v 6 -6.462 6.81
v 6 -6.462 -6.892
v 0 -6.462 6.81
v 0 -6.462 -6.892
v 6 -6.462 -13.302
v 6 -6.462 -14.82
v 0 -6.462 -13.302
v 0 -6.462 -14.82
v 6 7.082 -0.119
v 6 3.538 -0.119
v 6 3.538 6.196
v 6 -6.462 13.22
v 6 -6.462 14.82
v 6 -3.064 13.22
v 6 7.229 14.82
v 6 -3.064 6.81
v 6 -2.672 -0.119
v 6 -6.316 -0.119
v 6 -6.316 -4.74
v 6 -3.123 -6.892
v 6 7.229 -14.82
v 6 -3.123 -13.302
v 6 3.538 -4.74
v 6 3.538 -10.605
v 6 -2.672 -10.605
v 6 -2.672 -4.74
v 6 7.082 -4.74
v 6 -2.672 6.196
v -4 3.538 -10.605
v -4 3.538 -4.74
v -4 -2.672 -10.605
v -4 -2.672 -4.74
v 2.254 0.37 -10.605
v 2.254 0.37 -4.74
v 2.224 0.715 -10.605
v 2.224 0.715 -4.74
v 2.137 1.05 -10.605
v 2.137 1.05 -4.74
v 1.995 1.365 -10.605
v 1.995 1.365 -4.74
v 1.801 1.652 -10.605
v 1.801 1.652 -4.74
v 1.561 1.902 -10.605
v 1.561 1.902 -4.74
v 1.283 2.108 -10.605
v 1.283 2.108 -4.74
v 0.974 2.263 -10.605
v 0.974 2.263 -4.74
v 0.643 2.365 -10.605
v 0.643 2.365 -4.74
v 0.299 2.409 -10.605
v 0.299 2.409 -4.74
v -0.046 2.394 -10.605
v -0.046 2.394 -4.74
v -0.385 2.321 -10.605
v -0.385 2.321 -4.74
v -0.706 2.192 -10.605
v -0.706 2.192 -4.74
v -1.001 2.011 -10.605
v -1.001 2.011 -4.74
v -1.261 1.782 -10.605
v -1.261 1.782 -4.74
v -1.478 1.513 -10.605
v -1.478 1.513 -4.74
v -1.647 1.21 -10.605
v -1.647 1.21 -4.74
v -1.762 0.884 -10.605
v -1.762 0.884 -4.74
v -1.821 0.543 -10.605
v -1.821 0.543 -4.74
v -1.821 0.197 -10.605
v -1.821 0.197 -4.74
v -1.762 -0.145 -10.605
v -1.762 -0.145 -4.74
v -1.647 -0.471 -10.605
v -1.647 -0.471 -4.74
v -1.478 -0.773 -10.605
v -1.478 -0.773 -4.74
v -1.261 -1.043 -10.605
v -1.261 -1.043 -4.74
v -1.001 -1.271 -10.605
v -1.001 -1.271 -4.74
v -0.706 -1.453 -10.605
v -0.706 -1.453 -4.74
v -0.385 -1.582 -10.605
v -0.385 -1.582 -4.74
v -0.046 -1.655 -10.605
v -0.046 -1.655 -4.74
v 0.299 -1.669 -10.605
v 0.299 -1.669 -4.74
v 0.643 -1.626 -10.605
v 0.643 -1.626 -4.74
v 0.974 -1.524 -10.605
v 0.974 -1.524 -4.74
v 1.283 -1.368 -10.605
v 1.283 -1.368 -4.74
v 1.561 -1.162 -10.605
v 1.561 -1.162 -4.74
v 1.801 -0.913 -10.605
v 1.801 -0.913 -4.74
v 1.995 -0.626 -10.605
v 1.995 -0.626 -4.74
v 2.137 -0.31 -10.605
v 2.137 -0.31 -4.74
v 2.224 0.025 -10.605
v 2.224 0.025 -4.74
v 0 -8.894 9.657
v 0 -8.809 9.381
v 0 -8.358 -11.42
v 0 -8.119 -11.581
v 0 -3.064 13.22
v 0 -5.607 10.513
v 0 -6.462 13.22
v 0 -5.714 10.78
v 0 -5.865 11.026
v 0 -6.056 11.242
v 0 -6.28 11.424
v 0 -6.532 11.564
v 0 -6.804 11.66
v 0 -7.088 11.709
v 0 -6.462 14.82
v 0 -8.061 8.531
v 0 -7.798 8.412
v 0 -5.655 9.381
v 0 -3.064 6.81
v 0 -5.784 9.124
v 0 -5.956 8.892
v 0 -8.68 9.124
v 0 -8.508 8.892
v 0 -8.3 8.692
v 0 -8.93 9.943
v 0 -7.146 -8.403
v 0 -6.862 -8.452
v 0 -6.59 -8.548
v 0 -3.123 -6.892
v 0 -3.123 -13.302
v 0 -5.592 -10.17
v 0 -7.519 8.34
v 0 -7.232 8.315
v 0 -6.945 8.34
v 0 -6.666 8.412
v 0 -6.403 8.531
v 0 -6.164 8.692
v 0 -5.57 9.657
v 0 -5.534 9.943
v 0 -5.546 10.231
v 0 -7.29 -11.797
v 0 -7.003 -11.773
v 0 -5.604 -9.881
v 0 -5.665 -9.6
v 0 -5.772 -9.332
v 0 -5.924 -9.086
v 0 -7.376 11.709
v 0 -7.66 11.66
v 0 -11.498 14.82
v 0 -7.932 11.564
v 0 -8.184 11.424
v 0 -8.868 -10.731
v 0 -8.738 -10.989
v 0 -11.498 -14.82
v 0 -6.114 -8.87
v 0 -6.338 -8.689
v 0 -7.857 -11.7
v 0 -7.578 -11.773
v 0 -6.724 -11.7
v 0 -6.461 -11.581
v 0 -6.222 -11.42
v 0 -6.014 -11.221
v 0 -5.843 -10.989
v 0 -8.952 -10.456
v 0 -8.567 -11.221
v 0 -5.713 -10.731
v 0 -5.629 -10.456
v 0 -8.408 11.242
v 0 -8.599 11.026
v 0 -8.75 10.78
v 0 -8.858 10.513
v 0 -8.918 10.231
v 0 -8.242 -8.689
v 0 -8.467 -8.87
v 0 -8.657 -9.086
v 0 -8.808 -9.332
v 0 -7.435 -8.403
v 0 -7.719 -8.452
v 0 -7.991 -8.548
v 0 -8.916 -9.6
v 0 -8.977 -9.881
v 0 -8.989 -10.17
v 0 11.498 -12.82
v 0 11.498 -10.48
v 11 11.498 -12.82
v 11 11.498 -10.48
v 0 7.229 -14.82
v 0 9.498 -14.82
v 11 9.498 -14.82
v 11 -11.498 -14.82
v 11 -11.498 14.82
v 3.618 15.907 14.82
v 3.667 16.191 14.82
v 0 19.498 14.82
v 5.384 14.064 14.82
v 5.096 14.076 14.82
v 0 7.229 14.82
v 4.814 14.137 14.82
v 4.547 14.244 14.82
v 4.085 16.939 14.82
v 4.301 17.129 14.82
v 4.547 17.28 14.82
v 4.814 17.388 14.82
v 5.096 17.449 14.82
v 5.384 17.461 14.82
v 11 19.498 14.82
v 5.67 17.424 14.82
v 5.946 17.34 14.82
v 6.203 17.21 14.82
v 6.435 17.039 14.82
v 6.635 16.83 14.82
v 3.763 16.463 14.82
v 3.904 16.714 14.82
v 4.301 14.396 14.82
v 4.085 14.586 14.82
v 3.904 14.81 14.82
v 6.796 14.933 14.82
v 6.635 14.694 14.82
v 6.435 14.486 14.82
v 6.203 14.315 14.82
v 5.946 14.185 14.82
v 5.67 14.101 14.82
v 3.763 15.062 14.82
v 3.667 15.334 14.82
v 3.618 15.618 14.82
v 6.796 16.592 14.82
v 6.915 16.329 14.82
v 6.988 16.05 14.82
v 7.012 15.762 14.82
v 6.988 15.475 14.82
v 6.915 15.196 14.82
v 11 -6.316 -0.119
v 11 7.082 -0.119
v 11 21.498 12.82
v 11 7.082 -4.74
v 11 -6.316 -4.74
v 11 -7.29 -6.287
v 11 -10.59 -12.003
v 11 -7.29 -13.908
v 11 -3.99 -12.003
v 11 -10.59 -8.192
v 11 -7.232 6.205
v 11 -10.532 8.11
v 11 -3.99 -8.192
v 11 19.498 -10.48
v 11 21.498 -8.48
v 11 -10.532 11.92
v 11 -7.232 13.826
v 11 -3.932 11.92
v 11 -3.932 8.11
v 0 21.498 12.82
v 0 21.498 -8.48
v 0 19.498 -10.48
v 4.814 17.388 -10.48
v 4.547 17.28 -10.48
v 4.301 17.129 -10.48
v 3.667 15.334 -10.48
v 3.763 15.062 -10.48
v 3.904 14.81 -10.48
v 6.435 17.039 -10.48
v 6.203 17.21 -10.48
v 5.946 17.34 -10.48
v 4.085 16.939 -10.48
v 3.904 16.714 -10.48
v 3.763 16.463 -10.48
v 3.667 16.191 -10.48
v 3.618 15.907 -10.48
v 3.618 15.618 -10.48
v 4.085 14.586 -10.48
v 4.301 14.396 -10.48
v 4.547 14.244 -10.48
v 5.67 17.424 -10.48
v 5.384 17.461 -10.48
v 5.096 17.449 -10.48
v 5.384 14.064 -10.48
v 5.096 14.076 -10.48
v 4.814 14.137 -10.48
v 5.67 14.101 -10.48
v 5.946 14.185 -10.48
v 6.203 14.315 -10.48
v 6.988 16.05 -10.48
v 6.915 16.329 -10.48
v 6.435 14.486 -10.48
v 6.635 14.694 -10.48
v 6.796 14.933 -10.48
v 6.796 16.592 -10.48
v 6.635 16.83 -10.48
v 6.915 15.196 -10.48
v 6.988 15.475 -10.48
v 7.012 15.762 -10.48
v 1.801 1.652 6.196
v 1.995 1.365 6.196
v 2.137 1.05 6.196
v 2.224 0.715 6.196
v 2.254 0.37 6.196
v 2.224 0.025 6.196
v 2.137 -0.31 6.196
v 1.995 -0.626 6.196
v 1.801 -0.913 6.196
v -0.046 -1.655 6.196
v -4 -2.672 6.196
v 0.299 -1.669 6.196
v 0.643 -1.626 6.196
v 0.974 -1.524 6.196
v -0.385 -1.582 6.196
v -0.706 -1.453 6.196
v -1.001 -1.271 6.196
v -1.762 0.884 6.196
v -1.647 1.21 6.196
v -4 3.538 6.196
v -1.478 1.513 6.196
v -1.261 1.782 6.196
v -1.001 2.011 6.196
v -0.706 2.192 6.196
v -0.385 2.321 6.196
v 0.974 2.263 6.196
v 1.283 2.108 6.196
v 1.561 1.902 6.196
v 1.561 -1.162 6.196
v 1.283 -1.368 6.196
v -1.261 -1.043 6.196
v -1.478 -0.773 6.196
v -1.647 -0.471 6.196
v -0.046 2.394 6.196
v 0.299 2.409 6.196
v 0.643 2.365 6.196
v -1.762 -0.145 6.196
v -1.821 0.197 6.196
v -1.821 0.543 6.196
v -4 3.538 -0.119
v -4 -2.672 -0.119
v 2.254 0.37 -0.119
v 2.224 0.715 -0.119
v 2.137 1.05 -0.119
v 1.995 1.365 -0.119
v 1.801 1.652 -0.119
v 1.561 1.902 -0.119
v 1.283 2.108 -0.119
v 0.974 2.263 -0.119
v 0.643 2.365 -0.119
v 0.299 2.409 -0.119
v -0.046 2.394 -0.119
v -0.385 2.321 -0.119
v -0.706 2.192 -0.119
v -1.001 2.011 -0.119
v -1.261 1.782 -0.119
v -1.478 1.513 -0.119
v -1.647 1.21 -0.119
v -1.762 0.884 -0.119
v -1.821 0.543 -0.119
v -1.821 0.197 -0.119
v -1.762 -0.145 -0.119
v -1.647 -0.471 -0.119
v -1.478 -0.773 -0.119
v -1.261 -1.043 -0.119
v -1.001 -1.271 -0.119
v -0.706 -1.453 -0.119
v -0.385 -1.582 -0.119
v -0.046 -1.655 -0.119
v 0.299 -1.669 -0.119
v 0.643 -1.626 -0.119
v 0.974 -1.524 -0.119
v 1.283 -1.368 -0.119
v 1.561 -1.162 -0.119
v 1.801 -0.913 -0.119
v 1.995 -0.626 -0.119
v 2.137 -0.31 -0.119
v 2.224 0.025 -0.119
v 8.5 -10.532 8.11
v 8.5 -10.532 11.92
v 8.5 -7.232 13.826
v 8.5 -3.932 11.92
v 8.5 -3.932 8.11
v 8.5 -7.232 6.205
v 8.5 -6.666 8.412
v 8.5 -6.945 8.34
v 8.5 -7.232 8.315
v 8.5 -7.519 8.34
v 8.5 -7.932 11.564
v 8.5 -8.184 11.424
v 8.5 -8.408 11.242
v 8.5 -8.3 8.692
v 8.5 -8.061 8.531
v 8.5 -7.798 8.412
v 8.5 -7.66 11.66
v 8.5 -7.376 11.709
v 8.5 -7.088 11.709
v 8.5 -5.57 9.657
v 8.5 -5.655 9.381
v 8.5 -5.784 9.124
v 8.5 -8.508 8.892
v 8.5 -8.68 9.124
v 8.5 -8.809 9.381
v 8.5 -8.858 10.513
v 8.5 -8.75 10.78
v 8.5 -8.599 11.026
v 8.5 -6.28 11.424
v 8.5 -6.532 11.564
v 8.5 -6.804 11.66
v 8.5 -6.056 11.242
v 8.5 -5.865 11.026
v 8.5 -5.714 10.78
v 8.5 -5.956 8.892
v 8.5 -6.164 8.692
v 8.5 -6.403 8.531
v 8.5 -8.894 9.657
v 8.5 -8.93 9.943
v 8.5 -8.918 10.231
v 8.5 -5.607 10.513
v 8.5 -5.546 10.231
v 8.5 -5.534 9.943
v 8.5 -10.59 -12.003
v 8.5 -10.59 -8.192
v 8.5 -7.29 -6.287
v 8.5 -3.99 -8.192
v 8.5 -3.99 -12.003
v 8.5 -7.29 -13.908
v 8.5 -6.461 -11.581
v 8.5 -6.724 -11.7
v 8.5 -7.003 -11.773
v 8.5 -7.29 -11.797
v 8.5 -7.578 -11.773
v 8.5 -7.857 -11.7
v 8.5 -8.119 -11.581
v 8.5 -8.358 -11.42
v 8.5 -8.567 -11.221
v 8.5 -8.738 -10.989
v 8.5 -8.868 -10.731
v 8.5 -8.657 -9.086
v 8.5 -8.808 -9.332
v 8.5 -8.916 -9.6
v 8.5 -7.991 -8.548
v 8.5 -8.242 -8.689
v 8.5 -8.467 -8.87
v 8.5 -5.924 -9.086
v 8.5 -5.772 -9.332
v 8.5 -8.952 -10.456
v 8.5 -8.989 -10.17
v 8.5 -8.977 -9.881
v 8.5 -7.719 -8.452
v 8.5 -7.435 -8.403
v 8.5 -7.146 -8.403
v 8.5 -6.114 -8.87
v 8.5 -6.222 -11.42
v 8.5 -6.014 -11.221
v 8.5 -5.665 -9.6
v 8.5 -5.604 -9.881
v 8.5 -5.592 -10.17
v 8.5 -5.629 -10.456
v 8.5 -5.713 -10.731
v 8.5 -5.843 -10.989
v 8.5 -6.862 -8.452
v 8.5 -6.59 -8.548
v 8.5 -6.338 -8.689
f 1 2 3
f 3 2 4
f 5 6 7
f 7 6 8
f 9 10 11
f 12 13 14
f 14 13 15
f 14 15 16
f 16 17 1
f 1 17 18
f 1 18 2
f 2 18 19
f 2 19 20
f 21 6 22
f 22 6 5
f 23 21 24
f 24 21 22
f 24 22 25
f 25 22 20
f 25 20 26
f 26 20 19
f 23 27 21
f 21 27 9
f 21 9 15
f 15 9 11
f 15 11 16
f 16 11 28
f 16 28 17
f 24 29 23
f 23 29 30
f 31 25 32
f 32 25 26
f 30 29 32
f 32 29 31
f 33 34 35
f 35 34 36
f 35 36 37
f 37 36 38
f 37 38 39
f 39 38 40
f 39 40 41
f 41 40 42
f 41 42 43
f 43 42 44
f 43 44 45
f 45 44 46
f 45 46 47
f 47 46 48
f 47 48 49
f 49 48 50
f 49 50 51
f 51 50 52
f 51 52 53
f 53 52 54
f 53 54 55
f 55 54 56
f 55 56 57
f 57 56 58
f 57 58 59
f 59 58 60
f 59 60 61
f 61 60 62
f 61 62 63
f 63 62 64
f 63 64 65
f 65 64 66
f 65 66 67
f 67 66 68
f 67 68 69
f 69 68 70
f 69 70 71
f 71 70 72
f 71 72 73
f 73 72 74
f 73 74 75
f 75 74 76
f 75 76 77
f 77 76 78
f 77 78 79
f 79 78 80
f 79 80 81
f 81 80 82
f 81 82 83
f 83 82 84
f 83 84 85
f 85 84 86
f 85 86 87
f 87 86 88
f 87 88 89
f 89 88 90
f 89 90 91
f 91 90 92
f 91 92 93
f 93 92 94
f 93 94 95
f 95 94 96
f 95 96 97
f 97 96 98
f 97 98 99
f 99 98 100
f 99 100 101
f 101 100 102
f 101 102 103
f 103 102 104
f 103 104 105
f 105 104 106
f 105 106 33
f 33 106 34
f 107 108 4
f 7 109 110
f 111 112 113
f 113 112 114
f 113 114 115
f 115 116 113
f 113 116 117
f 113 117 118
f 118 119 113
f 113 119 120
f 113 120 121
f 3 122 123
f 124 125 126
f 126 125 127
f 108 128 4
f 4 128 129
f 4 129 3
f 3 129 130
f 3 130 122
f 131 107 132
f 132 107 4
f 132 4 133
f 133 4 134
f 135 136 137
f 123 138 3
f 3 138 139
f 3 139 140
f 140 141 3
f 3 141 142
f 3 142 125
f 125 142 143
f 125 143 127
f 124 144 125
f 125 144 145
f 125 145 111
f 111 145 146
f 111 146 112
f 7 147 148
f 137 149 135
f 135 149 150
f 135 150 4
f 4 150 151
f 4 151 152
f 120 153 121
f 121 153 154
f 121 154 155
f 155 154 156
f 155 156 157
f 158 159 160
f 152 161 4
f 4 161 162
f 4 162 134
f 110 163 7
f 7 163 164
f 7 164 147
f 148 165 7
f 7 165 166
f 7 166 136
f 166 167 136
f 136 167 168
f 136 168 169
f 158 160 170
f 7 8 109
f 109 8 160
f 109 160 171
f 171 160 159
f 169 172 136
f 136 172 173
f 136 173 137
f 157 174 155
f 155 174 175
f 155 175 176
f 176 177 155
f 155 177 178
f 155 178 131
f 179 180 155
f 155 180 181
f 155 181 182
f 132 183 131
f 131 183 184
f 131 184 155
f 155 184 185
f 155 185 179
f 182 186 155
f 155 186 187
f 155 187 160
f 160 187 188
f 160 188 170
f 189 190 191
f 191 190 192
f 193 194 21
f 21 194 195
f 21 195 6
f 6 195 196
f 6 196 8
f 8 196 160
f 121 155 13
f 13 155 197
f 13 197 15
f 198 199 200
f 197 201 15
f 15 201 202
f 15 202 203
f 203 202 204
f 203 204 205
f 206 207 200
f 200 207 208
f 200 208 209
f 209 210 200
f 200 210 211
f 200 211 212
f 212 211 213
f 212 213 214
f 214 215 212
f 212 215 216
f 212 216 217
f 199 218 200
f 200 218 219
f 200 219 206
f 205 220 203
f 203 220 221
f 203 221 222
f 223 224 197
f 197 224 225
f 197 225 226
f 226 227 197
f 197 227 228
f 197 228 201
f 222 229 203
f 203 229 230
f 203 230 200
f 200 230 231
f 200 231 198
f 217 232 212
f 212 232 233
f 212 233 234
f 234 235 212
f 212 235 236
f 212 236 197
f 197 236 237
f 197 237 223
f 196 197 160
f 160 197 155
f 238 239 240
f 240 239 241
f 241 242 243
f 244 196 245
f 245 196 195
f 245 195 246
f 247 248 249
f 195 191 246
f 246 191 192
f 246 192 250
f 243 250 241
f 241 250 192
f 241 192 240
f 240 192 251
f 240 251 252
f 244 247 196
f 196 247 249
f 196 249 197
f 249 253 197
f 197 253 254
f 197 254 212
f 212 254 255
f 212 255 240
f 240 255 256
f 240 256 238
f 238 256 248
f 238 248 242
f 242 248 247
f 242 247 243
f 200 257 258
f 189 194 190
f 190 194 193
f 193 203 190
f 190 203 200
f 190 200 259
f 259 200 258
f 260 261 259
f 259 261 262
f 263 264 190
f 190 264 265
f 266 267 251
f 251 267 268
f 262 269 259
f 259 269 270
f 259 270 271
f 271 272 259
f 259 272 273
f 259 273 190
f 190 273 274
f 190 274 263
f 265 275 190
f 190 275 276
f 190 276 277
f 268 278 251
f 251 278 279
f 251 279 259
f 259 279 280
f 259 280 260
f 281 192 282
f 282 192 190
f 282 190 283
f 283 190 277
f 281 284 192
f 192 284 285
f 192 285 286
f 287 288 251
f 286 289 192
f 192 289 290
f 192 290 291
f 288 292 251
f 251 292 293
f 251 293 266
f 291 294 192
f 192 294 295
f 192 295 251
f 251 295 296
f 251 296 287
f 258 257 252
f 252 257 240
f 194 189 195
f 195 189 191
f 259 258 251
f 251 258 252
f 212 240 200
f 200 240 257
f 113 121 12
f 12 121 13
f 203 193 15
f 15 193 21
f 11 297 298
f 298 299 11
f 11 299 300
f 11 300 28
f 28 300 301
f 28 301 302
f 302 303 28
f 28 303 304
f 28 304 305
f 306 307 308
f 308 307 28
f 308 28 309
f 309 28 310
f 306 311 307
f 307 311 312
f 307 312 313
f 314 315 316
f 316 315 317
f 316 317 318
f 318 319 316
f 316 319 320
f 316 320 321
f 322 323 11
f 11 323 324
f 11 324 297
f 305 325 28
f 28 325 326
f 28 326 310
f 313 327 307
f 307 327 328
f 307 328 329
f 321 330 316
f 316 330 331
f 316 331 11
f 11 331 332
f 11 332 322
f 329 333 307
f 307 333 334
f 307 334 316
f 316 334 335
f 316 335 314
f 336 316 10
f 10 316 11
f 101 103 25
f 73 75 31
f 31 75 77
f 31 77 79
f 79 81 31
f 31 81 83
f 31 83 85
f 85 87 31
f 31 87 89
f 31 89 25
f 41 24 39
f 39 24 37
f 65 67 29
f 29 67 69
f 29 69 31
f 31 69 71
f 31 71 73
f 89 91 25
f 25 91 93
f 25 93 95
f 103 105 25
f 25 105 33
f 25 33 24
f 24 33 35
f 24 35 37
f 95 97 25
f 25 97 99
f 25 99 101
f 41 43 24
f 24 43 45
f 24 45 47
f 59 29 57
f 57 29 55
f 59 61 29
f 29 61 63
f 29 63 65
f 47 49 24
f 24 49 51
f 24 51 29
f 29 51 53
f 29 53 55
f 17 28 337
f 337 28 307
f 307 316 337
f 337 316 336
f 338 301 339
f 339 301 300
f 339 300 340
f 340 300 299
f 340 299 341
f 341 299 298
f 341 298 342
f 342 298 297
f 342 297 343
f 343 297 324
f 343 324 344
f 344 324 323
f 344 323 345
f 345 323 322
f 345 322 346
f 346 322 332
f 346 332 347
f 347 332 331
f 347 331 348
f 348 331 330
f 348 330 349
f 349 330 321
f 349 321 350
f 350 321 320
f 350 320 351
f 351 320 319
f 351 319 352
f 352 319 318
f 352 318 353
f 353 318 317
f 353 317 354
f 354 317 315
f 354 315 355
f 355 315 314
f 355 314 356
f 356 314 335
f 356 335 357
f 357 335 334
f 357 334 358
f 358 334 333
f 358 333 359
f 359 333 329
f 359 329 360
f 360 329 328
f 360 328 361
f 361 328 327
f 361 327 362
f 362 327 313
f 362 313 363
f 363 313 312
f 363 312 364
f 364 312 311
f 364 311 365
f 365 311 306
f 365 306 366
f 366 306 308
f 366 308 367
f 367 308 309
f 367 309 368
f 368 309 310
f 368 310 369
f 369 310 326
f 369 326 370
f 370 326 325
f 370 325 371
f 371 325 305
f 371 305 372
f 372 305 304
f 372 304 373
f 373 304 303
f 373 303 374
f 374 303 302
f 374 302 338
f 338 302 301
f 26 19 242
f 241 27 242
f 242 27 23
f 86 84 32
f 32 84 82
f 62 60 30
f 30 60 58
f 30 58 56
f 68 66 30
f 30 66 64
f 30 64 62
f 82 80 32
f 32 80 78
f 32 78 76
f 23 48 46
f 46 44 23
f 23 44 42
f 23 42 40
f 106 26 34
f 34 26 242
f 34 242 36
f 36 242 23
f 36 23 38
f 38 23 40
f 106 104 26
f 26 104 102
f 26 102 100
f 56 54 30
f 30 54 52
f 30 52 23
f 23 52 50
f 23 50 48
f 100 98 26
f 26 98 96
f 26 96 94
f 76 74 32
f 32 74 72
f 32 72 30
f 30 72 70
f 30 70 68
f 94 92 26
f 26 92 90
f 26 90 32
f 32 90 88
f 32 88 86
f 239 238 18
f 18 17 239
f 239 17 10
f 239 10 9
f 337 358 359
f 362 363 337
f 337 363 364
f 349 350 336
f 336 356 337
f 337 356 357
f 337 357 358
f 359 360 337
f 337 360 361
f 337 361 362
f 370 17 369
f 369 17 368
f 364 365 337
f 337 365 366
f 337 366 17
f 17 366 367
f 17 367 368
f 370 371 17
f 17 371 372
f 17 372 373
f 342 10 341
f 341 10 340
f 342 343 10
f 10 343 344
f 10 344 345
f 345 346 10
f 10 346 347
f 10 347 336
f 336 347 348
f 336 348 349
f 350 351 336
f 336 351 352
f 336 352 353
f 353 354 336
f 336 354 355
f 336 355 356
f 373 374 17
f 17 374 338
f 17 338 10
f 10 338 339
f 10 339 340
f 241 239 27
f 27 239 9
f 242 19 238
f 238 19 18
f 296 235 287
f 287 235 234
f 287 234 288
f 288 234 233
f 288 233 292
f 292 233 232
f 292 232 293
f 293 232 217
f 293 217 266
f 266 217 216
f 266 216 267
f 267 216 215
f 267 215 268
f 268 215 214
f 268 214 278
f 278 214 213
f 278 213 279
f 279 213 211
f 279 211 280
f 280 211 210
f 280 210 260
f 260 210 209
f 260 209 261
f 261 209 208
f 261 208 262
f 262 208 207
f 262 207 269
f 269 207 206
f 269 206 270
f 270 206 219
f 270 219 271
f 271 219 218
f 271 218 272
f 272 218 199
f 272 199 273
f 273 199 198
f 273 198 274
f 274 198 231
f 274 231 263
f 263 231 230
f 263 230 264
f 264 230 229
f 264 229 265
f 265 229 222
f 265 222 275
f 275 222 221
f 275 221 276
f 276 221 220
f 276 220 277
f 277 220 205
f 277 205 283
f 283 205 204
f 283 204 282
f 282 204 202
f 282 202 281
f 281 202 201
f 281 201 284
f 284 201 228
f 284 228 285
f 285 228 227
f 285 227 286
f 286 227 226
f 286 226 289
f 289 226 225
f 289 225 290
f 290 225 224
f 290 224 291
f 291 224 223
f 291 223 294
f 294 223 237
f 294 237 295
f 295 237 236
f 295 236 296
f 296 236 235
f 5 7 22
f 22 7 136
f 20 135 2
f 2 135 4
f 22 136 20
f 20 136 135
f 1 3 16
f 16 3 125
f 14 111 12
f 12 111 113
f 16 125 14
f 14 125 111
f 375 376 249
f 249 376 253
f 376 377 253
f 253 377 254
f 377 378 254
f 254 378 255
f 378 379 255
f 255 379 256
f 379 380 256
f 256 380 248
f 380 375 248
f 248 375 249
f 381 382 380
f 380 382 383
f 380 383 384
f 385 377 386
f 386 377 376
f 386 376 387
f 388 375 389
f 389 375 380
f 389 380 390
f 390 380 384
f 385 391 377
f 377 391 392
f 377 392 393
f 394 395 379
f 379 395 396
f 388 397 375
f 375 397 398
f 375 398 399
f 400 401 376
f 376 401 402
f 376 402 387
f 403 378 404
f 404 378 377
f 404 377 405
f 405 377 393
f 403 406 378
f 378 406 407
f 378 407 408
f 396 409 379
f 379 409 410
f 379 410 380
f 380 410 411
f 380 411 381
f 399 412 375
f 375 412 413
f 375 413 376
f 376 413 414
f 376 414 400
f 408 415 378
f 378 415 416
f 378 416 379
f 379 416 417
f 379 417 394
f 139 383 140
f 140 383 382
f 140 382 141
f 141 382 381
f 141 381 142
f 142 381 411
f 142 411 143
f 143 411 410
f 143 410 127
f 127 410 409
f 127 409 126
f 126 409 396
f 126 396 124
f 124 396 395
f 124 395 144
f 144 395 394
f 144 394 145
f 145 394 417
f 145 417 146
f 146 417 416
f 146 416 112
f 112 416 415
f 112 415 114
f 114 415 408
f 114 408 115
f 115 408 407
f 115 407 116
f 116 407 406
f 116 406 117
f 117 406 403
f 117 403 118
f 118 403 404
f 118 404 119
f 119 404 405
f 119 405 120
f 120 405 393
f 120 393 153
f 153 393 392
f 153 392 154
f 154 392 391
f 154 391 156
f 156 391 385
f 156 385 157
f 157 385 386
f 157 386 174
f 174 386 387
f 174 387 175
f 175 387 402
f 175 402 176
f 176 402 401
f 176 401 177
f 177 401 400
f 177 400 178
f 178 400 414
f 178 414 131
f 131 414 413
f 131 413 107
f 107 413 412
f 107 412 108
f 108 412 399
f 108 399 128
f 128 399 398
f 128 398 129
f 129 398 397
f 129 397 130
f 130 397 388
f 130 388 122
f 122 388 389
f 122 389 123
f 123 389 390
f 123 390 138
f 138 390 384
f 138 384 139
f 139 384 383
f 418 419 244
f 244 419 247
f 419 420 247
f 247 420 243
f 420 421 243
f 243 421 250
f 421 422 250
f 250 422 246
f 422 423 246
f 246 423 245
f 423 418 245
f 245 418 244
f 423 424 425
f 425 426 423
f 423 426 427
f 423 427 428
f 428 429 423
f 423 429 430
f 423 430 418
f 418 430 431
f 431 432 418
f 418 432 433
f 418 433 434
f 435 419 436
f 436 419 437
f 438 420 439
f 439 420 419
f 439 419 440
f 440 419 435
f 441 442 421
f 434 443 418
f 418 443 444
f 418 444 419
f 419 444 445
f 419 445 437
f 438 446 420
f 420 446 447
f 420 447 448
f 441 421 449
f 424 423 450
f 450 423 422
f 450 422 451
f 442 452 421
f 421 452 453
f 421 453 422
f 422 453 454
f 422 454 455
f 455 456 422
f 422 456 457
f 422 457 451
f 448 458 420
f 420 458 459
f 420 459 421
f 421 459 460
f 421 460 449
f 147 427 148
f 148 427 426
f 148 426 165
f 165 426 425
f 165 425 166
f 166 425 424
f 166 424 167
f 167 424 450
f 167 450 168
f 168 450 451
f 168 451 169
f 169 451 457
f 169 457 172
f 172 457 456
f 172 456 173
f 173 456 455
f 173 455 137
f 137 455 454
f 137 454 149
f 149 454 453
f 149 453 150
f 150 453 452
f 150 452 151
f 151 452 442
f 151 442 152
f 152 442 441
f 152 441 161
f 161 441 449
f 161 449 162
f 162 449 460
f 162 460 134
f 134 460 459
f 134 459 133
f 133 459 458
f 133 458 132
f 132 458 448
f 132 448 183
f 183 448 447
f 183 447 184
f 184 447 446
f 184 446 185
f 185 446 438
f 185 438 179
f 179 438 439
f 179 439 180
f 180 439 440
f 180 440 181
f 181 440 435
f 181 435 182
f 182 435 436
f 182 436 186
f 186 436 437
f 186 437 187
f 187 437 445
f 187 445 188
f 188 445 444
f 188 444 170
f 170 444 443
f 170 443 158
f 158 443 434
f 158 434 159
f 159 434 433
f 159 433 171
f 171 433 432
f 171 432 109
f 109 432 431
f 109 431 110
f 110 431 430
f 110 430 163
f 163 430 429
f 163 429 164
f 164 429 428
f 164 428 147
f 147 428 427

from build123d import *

# Parameters (mm, degrees)
SKETCH1_W           = 29.64084851
SKETCH1_H           = 22.995210284
BOSS_EXTRUDE1_DEPTH = 11
SKETCH2_W           = 11
SKETCH2_H           = 25.30011898
BOSS_EXTRUDE2_DEPTH = 10
CHAMFER1_SIZE       = 2
SKETCH3_W           = 31.444464136
SKETCH3_H           = 13.690550156
CUT_EXTRUDE2_DEPTH  = 6
SKETCH4_W           = 16.801230495
SKETCH4_H           = 6.210132239
BOSS_EXTRUDE3_DEPTH = 10
SKETCH5_R           = 2.040999549
CUT_EXTRUDE3_DEPTH  = 22.016469246
SKETCH6_W           = 4.621469737
SKETCH6_H           = 13.3986797
CUT_EXTRUDE4_DEPTH  = 16
SKETCH7_R           = 1.7
CUT_EXTRUDE5_DEPTH  = 27
SKETCH21_W          = 6.4100694
SKETCH21_H          = 8.3354859
BOSS_EXTRUDE4_DEPTH = 11
SKETCH20_W          = 6.410069378
SKETCH20_H          = 8.335485858
BOSS_EXTRUDE5_DEPTH = 11
CUT_EXTRUDE6_DEPTH  = 2.5
SKETCH19_R          = 1.7
CUT_EXTRUDE7_DEPTH  = 16
CUT_EXTRUDE8_DEPTH  = 2.5
SKETCH18_R          = 1.7
CUT_EXTRUDE9_DEPTH  = 16


with BuildPart() as part:
    # Sketch1 → Boss-Extrude1 (new body)
    with BuildSketch(Plane(origin=(0, 0, 0), x_dir=(0, 0, -1), z_dir=(1, 0, 0))):
        Rectangle(SKETCH1_W, SKETCH1_H)
    extrude(amount=BOSS_EXTRUDE1_DEPTH)

    # Sketch2 → Boss-Extrude2 (add)
    with BuildSketch(Plane(origin=(0, 11.497605142, 0), x_dir=(1, 0, 0), z_dir=(0, 1, 0))):
        with Locations((5.5, -2.170364765)):
            Rectangle(SKETCH2_W, SKETCH2_H)
    extrude(amount=BOSS_EXTRUDE2_DEPTH)

    # Chamfer1
    chamfer1_edges = [part.edges().sort_by_distance(p)[0] for p in [
        (5.5, 21.497605142, -10.479694725),
        (5.5, 21.497605142, 14.820424255),
        (5.5, 11.497605142, -14.820424255),
    ]]
    chamfer(chamfer1_edges, length=CHAMFER1_SIZE)

    # Sketch3 → Cut-Extrude2 (cut)
    with BuildSketch(Plane.ZY):
        with Locations((0.26445091, 0.38357275)):
            Rectangle(SKETCH3_W, SKETCH3_H)
    extrude(amount=-CUT_EXTRUDE2_DEPTH, mode=Mode.SUBTRACT)

    # Sketch4 → Boss-Extrude3 (add)
    with BuildSketch(Plane(origin=(6, 0.435062227, 0), x_dir=(0, 0, 1), z_dir=(-1, 0, 0))):
        with Locations((-2.204570257, -0.002306757)):
            Rectangle(SKETCH4_W, SKETCH4_H)
    extrude(amount=BOSS_EXTRUDE3_DEPTH)

    # Sketch5 → Cut-Extrude3 (cut, through all)
    with BuildSketch(Plane.XY.offset(6.196044991)):
        with Locations((0.212787141, 0.369675098)):
            Circle(SKETCH5_R)
    extrude(amount=-CUT_EXTRUDE3_DEPTH, mode=Mode.SUBTRACT)

    # Sketch6 → Cut-Extrude4 (cut, through all)
    with BuildSketch(Plane(origin=(11, 0, 0), x_dir=(0, 0, -1), z_dir=(1, 0, 0))):
        with Locations((2.429578273, 0.383063563)):
            Rectangle(SKETCH6_W, SKETCH6_H)
    extrude(amount=-CUT_EXTRUDE4_DEPTH, mode=Mode.SUBTRACT)

    # Sketch7 → Cut-Extrude5 (cut)
    with BuildSketch(Plane.XY.offset(14.820424255)):
        with Locations((5.312142967, 15.762432364)):
            Circle(SKETCH7_R)
    extrude(amount=-CUT_EXTRUDE5_DEPTH, mode=Mode.SUBTRACT)

    # Sketch21 → Boss-Extrude4 (add)
    with BuildSketch(Plane(origin=(11, 0, 0), x_dir=(0, 0, -1), z_dir=(1, 0, 0))):
        with Locations((10.097369078, -7.290376311)):
            Rectangle(SKETCH21_W, SKETCH21_H)
    extrude(amount=-BOSS_EXTRUDE4_DEPTH)

    # Sketch20 → Boss-Extrude5 (add)
    with BuildSketch(Plane(origin=(11, 0, 0), x_dir=(0, 0, -1), z_dir=(1, 0, 0))):
        with Locations((-10.015073396, -7.232029734)):
            Rectangle(SKETCH20_W, SKETCH20_H)
    extrude(amount=-BOSS_EXTRUDE5_DEPTH)

    # Sketch15 → Cut-Extrude6 (cut)
    with BuildSketch(Plane(origin=(11, 0, 0), x_dir=(0, 0, -1), z_dir=(1, 0, 0))):
        Polygon((-8.109817508, -10.532029734), (-6.204561619, -7.232029734), (-8.109817508, -3.932029734), (-11.920329284, -3.932029734), (-13.825585173, -7.232029734), (-11.920329284, -10.532029734), align=None)
    extrude(amount=-CUT_EXTRUDE6_DEPTH, mode=Mode.SUBTRACT)

    # Sketch19 → Cut-Extrude7 (cut, through all)
    with BuildSketch(Plane(origin=(11, 0, 0), x_dir=(0, 0, -1), z_dir=(1, 0, 0))):
        with Locations((-10.015073396, -7.232029734)):
            Circle(SKETCH19_R)
    extrude(amount=-CUT_EXTRUDE7_DEPTH, mode=Mode.SUBTRACT)

    # Sketch17 → Cut-Extrude8 (cut)
    with BuildSketch(Plane(origin=(11, 0, 0), x_dir=(0, 0, -1), z_dir=(1, 0, 0))):
        Polygon((12.002624966, -10.590376311), (13.907880854, -7.290376311), (12.002624966, -3.990376311), (8.192113189, -3.990376311), (6.286857301, -7.290376311), (8.192113189, -10.590376311), align=None)
    extrude(amount=-CUT_EXTRUDE8_DEPTH, mode=Mode.SUBTRACT)

    # Sketch18 → Cut-Extrude9 (cut, through all)
    with BuildSketch(Plane(origin=(11, 0, 0), x_dir=(0, 0, -1), z_dir=(1, 0, 0))):
        with Locations((10.097369078, -7.290376311)):
            Circle(SKETCH18_R)
    extrude(amount=-CUT_EXTRUDE9_DEPTH, mode=Mode.SUBTRACT)


solid = part.part
